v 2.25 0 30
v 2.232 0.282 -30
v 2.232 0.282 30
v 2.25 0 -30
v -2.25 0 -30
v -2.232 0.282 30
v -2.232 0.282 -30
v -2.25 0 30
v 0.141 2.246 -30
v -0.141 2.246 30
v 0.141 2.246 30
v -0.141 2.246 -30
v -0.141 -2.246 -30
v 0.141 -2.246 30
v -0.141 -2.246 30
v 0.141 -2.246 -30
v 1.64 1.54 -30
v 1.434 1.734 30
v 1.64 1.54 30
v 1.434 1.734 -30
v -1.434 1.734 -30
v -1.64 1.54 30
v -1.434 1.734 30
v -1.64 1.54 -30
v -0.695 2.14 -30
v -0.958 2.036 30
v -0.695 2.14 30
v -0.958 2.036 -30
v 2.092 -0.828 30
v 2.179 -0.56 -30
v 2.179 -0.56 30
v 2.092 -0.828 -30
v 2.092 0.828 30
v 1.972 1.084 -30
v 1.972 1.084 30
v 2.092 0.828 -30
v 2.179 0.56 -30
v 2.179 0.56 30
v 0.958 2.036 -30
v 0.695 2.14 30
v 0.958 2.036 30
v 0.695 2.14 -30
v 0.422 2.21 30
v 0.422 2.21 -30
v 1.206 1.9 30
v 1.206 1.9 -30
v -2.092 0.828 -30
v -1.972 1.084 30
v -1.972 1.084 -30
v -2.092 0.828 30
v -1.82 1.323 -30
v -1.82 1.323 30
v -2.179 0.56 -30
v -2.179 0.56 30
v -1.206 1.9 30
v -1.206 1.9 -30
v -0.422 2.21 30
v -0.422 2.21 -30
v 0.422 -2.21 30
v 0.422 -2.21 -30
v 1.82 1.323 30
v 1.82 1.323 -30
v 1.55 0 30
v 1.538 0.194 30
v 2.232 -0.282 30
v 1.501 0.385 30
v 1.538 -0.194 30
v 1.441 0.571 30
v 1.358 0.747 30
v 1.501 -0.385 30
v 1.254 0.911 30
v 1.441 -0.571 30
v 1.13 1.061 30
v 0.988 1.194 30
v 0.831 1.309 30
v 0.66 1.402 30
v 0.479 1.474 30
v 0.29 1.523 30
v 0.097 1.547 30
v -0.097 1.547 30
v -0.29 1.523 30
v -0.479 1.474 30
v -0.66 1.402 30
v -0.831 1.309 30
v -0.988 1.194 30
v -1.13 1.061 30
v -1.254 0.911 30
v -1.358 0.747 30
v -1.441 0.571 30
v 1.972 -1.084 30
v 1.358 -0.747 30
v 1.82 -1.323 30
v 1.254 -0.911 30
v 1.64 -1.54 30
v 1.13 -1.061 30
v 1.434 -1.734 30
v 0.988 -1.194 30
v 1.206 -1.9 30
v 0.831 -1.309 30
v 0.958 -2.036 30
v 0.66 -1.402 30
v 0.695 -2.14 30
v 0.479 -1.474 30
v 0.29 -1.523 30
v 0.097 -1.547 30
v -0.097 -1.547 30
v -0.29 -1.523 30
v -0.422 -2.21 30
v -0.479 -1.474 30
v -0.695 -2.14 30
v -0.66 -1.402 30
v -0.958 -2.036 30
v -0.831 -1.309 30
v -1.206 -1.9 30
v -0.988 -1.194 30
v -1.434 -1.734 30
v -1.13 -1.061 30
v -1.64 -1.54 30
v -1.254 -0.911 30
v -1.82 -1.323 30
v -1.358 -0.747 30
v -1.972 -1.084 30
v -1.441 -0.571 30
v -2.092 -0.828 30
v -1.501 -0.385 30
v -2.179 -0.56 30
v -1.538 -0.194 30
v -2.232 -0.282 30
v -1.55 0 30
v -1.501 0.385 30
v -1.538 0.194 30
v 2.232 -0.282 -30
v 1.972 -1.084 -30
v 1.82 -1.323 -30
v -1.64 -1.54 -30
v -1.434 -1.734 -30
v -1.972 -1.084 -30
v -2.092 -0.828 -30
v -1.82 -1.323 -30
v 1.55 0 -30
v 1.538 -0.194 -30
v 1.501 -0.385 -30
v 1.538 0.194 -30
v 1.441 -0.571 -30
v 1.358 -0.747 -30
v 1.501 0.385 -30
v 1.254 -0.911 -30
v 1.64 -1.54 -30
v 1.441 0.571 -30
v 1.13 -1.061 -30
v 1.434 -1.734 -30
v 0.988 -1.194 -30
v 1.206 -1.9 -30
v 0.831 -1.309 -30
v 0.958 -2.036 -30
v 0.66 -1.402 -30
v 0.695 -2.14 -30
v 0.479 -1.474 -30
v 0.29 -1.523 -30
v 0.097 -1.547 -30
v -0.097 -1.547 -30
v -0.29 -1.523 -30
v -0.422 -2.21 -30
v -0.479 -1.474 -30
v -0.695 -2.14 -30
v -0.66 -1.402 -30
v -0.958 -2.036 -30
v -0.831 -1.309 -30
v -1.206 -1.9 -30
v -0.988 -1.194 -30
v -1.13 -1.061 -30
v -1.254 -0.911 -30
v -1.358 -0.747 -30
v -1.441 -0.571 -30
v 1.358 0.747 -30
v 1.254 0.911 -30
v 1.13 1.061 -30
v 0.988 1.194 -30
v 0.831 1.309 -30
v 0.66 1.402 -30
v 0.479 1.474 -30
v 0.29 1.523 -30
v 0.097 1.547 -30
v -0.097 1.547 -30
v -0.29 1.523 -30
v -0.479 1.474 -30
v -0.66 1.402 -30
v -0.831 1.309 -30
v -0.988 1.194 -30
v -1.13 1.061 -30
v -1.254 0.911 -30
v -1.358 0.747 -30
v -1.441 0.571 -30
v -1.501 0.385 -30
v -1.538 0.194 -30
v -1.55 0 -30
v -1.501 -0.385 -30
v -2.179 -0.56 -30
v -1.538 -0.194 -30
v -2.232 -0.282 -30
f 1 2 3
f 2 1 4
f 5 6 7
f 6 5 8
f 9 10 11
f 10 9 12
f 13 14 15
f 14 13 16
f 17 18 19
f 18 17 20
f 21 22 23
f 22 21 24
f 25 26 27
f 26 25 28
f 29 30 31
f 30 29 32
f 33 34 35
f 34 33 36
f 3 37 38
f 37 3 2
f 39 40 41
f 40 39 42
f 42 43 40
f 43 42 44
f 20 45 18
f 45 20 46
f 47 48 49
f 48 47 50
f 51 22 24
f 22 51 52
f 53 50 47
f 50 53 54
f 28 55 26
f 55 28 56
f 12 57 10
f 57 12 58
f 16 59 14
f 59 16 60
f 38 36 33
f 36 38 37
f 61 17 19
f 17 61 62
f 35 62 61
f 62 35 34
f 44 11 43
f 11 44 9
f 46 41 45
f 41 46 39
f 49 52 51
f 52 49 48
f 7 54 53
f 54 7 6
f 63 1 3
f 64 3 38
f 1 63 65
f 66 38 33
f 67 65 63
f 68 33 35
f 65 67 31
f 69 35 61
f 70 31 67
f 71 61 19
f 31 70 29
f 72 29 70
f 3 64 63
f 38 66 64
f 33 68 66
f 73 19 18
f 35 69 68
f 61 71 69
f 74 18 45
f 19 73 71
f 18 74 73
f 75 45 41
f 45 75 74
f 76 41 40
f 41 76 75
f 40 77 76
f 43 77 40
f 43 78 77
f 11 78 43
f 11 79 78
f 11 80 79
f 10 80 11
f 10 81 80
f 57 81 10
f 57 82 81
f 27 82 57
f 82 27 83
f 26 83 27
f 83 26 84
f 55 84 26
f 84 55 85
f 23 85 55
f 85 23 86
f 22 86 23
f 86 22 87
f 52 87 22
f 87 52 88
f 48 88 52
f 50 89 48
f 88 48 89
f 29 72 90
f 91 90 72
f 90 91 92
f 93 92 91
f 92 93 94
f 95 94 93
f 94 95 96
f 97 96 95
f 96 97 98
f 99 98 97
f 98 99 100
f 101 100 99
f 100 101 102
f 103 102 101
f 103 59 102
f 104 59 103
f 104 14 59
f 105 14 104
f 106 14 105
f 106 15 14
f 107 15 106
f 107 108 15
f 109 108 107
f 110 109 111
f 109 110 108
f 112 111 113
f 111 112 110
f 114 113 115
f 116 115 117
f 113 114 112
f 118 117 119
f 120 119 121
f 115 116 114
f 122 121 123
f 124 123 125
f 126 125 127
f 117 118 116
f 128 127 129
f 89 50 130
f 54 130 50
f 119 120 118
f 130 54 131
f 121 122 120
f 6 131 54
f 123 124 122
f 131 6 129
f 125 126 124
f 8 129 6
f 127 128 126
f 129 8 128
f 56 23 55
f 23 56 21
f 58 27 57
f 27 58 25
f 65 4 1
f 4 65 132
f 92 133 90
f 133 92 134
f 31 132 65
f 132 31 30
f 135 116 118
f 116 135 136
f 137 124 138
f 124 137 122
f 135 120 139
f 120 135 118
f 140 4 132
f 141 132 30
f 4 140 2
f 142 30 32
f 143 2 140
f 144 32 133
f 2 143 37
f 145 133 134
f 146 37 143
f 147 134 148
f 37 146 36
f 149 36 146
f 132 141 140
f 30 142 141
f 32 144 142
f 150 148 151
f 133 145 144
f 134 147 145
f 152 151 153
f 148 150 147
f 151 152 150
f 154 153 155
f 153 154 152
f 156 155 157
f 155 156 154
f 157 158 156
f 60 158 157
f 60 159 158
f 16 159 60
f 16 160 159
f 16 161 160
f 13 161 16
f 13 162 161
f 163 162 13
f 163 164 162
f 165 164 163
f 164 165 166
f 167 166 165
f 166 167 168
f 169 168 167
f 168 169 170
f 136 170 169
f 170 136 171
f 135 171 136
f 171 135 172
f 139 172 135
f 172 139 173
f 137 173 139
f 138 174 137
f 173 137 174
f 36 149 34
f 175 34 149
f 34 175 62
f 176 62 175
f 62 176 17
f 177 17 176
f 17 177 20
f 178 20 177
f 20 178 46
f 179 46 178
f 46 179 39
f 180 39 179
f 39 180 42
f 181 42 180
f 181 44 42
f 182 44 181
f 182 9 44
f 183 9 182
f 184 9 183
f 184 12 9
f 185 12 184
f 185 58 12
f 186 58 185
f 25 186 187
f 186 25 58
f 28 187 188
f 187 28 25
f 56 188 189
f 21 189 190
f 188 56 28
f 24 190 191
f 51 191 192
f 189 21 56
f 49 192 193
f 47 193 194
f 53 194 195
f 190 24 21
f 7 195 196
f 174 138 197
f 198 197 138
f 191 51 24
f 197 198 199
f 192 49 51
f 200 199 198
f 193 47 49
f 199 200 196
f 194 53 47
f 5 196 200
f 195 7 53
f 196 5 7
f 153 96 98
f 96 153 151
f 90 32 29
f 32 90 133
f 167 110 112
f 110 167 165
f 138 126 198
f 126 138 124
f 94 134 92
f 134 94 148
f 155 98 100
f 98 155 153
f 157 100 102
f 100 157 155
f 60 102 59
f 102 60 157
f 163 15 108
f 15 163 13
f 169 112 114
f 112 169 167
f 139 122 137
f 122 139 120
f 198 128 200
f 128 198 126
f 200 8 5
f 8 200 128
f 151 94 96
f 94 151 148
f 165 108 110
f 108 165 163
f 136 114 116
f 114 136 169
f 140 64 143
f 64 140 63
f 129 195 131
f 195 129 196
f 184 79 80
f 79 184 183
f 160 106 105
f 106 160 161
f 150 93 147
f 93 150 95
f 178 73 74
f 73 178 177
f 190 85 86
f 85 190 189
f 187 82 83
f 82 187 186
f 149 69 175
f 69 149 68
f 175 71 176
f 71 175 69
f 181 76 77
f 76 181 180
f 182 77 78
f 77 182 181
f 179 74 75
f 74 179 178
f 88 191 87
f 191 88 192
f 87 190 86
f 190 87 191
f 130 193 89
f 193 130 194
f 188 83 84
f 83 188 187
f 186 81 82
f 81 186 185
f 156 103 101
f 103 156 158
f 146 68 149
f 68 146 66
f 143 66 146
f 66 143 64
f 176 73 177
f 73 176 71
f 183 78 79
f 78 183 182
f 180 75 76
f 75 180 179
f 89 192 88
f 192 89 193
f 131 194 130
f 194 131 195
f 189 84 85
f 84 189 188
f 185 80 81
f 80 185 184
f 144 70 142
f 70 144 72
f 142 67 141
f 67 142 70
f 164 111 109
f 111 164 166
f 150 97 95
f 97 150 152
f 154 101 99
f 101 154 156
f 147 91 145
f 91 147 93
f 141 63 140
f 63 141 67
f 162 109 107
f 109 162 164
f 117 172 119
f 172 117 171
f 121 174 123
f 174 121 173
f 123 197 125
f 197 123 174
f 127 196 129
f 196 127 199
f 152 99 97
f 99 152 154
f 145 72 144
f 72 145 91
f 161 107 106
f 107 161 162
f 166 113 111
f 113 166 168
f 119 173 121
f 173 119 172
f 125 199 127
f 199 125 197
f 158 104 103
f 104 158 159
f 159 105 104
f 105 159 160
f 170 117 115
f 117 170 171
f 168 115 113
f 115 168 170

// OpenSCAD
$fn = 50;


difference() {
	union() {
		translate(v = [0, 0, -30.0000000000]) {
			cylinder(h = 60, r = 2.2500000000);
		}
	}
	union() {
		translate(v = [0, 0, -100.0000000000]) {
			cylinder(h = 200, r = 1.5500000000);
		}
	}
}
